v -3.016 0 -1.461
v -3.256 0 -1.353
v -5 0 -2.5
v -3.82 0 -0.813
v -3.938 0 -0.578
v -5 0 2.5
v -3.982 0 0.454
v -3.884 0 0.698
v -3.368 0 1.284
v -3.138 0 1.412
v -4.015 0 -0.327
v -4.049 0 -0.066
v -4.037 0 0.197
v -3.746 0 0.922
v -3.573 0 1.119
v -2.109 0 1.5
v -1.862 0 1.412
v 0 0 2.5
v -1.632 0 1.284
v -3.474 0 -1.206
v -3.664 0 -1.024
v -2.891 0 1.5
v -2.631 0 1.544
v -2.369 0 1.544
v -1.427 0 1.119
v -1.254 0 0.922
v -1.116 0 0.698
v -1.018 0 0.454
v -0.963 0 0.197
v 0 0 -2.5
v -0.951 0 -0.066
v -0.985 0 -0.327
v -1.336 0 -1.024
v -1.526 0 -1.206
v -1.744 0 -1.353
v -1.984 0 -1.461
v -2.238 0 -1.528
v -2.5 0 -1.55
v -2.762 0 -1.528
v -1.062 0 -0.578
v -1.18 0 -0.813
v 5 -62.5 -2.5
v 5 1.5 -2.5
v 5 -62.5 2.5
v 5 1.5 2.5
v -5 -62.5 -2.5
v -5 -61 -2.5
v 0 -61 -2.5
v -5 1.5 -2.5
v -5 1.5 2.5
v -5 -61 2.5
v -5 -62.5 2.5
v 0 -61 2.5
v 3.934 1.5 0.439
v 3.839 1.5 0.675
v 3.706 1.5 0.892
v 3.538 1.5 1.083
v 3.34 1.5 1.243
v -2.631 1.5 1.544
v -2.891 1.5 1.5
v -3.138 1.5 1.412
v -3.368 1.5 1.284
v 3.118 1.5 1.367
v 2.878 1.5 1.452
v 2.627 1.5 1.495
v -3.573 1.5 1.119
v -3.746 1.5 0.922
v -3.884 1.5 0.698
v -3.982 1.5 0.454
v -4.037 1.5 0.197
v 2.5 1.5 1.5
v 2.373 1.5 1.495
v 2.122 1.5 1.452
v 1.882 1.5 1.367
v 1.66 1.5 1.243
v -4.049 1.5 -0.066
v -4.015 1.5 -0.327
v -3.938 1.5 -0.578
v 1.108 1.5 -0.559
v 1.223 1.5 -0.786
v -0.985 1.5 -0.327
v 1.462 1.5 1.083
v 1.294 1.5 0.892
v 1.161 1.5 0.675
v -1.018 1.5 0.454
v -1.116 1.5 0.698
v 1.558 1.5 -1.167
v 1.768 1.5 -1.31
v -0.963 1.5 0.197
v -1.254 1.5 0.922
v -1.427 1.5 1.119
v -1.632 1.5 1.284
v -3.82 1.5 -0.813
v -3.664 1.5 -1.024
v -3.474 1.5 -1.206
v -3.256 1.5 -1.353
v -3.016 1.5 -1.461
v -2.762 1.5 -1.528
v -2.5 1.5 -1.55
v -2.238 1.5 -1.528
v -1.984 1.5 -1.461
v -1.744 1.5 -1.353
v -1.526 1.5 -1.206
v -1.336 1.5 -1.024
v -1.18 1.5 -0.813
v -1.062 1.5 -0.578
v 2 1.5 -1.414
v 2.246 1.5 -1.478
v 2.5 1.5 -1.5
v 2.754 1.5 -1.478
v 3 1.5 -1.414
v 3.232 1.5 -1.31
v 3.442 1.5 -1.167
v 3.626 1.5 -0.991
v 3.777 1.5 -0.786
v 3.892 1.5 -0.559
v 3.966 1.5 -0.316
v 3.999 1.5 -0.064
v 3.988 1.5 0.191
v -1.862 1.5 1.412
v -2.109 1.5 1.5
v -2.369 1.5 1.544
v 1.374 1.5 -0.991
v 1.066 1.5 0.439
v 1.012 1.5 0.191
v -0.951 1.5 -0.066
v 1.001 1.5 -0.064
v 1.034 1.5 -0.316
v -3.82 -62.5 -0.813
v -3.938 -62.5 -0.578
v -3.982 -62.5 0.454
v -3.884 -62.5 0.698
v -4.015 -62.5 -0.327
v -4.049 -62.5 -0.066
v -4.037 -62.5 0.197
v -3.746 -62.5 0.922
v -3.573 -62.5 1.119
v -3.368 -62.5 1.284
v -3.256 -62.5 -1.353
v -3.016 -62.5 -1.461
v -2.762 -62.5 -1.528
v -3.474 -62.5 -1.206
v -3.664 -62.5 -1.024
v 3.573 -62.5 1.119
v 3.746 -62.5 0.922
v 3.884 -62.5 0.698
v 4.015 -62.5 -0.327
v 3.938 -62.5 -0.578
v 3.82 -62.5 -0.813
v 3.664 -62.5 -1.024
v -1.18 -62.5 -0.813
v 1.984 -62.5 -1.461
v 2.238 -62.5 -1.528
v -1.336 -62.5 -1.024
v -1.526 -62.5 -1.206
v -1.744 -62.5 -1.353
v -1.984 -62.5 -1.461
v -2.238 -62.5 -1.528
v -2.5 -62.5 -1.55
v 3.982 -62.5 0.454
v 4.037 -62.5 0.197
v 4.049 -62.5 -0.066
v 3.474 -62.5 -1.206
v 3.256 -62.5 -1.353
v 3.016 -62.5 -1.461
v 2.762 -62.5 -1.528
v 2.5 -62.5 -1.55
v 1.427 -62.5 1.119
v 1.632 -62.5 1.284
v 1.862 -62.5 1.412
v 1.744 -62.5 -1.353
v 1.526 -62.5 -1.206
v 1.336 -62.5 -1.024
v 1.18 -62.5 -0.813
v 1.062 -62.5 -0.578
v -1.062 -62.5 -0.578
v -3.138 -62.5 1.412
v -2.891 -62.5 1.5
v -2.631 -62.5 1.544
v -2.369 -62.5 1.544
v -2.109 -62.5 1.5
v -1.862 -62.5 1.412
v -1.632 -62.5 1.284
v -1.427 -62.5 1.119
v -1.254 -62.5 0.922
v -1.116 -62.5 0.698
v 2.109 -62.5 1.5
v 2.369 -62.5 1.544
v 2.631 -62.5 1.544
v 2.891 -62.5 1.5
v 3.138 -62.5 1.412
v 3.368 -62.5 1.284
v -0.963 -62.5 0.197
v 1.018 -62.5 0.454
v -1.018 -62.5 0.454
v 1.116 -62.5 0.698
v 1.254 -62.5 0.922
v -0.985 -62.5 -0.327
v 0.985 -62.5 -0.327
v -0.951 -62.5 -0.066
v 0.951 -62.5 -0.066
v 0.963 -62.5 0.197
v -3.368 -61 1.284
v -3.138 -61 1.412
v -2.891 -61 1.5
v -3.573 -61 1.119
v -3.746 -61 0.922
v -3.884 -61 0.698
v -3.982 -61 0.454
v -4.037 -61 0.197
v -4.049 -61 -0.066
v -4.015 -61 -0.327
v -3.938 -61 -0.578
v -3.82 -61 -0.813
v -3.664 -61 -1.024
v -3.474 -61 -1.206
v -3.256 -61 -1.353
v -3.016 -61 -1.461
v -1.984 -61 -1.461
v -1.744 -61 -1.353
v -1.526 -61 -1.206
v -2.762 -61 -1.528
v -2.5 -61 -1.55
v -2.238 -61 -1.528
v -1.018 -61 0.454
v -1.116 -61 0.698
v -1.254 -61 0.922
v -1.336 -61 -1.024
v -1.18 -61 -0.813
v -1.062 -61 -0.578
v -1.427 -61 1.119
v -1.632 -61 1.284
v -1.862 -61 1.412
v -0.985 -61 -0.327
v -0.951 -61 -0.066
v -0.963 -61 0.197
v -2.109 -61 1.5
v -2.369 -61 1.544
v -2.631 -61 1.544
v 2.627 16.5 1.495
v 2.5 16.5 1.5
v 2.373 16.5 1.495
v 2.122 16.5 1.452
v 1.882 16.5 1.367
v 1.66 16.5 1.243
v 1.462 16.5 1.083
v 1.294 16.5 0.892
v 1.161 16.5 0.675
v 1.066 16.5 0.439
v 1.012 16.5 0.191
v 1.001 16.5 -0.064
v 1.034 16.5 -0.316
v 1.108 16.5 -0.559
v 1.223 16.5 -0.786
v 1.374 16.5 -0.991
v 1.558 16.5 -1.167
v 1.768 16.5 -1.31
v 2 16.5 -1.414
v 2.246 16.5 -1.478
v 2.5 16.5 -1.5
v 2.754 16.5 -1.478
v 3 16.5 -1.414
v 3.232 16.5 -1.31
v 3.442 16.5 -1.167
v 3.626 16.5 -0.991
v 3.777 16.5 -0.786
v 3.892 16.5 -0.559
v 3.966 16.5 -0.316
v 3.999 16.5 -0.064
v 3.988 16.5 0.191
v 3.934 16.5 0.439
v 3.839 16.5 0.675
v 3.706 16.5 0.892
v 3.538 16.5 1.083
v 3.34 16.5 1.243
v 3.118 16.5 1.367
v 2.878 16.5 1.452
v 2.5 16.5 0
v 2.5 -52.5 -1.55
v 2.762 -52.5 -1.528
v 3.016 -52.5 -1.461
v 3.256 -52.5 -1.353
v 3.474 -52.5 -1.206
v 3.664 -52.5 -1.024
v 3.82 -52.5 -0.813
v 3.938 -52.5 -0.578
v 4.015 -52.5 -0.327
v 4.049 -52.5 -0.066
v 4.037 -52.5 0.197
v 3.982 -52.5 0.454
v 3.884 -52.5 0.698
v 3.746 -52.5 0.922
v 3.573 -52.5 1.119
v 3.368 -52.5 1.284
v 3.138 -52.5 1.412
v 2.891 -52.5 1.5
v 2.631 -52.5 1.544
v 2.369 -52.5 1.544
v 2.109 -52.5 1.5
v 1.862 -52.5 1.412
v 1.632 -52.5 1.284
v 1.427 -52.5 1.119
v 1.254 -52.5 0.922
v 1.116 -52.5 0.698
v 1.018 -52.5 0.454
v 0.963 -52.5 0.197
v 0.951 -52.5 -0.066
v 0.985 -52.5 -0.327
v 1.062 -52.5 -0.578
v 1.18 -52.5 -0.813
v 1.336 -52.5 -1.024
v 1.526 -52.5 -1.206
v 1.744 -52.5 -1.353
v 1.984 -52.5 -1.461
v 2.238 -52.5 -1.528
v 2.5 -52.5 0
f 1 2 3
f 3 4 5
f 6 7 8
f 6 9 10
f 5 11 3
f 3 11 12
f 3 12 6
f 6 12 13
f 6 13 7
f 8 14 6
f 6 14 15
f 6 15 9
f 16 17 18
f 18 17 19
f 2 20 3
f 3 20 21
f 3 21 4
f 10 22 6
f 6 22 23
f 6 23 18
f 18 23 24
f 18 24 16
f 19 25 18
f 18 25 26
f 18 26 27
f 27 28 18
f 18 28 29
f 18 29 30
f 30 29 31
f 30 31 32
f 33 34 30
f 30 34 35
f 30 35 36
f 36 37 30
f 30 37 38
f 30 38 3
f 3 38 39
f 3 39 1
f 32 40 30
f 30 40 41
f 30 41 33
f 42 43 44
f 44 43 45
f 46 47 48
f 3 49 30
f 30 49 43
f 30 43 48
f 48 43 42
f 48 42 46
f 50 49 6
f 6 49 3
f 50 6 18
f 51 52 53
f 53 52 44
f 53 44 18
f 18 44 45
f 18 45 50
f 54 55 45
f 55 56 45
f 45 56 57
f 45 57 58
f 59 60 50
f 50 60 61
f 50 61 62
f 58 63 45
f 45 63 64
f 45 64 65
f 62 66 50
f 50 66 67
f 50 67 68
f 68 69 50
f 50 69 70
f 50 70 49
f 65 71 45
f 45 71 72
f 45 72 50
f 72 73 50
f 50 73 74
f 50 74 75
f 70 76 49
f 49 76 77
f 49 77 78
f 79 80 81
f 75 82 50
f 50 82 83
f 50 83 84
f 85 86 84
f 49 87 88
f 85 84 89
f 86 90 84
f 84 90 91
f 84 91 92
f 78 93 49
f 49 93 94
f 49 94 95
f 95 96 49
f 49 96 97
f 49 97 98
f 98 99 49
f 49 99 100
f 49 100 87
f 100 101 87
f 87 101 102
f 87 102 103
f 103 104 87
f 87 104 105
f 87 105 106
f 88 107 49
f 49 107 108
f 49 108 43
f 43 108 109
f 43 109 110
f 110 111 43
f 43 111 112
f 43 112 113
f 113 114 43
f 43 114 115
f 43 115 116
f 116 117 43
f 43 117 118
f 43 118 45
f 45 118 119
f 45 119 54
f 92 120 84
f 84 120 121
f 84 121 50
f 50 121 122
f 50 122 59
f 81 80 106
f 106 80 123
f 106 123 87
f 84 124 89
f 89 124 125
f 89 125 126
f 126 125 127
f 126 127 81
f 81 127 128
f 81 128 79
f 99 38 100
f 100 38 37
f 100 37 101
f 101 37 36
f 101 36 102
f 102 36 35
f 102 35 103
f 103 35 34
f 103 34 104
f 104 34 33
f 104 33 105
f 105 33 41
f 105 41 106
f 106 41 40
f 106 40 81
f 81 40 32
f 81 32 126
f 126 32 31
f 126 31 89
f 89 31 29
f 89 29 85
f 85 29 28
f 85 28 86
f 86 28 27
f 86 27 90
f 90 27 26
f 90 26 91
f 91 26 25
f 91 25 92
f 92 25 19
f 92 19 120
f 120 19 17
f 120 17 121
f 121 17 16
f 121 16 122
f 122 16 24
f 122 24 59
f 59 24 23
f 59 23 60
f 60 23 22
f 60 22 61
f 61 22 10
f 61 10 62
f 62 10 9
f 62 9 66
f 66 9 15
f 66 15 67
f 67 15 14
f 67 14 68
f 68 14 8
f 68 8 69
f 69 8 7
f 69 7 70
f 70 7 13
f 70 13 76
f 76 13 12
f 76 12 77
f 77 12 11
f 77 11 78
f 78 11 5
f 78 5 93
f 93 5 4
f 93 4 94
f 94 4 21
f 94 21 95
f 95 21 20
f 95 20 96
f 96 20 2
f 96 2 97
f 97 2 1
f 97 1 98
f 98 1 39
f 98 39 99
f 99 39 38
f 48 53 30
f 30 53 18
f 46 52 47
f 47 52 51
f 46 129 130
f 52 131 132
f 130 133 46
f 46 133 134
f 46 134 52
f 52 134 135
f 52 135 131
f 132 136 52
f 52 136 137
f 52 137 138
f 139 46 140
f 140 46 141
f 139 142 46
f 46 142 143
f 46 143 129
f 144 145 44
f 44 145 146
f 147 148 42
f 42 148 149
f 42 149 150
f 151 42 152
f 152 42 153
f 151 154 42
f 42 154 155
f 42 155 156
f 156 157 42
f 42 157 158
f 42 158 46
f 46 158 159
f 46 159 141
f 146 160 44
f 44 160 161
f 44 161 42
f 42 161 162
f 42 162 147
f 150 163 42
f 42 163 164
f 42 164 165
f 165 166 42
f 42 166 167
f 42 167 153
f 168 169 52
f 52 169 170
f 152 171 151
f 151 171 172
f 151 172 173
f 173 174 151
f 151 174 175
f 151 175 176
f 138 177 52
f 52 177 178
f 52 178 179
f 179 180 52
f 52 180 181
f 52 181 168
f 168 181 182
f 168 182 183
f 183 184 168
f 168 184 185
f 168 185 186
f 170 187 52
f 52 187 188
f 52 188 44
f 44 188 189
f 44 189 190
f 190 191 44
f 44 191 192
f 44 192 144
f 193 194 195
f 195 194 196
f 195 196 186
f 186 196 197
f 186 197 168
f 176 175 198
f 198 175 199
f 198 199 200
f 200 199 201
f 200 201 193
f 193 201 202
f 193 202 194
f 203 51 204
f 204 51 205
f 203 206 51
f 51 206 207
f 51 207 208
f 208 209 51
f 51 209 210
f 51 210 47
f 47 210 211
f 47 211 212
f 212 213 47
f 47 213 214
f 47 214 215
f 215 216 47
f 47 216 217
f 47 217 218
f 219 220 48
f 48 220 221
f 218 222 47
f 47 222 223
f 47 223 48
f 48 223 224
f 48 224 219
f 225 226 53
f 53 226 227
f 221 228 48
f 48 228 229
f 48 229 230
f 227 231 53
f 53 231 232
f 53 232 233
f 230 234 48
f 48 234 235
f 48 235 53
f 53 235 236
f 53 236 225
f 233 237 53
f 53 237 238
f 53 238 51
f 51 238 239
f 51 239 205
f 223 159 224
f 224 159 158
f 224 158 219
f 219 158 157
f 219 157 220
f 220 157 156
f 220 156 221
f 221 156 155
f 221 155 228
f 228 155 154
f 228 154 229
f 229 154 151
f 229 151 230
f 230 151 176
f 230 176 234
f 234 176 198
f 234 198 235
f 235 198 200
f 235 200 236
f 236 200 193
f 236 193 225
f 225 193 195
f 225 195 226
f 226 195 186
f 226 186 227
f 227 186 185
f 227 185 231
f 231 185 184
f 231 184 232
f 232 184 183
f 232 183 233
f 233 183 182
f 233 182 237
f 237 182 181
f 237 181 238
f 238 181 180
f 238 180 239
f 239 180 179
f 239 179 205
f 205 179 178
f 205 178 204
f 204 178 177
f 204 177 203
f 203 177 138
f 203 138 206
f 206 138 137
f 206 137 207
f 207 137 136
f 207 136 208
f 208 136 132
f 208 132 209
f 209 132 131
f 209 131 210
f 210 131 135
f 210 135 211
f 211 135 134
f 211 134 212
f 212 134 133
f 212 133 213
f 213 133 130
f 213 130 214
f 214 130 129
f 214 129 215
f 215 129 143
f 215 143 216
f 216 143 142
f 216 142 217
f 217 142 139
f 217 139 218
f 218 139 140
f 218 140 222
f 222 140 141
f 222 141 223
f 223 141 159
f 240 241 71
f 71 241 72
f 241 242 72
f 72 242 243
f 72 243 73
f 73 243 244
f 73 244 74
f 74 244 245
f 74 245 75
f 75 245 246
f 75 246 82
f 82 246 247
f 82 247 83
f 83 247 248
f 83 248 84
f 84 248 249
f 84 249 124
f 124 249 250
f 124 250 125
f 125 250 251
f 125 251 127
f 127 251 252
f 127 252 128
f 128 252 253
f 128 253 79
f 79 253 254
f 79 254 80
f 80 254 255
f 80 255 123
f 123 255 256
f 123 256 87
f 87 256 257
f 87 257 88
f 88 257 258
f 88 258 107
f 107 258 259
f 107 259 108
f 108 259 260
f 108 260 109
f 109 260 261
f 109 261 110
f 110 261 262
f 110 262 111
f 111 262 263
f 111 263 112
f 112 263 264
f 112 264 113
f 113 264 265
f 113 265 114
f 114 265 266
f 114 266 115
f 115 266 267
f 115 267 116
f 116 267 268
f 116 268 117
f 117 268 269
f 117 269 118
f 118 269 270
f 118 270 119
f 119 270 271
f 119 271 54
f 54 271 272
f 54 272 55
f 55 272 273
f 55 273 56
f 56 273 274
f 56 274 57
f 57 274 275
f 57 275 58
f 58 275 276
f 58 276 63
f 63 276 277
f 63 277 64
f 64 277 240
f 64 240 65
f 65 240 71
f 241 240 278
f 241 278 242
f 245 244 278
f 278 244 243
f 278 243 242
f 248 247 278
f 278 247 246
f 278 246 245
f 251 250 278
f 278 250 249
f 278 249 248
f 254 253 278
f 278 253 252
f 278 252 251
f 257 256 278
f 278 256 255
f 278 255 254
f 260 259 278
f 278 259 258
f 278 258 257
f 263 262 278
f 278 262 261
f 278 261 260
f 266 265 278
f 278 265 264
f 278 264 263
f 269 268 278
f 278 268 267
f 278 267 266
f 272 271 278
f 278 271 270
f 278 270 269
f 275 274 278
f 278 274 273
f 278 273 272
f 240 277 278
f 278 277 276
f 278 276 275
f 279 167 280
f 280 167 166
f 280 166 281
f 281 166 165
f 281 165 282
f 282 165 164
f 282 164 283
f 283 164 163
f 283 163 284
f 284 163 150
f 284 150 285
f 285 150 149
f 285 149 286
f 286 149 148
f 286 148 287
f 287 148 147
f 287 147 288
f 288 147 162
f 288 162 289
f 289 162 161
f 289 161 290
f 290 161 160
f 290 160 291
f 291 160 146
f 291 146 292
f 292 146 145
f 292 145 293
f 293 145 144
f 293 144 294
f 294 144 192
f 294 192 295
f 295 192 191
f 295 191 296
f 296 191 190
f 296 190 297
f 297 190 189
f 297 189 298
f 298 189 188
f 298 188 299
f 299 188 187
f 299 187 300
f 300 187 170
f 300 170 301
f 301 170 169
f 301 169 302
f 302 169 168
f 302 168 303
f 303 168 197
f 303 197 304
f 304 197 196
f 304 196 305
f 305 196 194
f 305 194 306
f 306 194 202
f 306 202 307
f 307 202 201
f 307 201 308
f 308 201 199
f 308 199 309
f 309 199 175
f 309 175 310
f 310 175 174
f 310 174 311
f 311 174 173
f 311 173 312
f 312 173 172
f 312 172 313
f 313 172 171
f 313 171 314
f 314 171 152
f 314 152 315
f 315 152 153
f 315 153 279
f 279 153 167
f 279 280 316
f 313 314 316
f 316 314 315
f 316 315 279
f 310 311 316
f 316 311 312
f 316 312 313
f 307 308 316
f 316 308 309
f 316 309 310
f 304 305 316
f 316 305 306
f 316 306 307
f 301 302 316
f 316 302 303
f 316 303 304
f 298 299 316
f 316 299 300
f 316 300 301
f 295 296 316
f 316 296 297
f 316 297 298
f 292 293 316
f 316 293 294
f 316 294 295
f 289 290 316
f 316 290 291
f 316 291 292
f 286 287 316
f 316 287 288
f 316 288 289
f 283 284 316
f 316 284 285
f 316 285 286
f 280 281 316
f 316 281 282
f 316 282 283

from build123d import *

# Parameters (mm, degrees)
SKETCH_2_W          = 10
SKETCH_2_H          = 5
EXTRUDE_1_DEPTH     = 1.5
SKETCH_3_R          = 1.55
CUT_EXTRUDE_1_DEPTH = 1.5
SKETCH_4_W          = 5
SKETCH_4_H          = 5
EXTRUDE_2_DEPTH     = 61
SKETCH_5_W          = 10
SKETCH_5_H          = 5
EXTRUDE_3_DEPTH     = 1.5
SKETCH_6_R          = 1.55
CUT_EXTRUDE_2_DEPTH = 1.5
SKETCH_7_R          = 1.5
EXTRUDE_4_DEPTH     = 15
SKETCH_11_R         = 1.55
CUT_EXTRUDE_3_DEPTH = 10


with BuildPart() as part:
    # 草图2 → 凸台-拉伸1 (new body)
    with BuildSketch(Plane(origin=(0, 0, 0), x_dir=(1, 0, 0), z_dir=(0, 1, 0))):
        Rectangle(SKETCH_2_W, SKETCH_2_H)
    extrude(amount=EXTRUDE_1_DEPTH)

    # 草图3 → 切除-拉伸1 (cut)
    with BuildSketch(Plane.XZ):
        with Locations(Location((-2.5, 0, 0), (0, 0, 270))):
            Circle(SKETCH_3_R)
    extrude(amount=-CUT_EXTRUDE_1_DEPTH, mode=Mode.SUBTRACT)

    # 草图4 → 凸台-拉伸2 (add)
    with BuildSketch(Plane.XZ):
        with Locations((2.5, 0)):
            Rectangle(SKETCH_4_W, SKETCH_4_H)
    extrude(amount=EXTRUDE_2_DEPTH)

    # 草图5 → 凸台-拉伸3 (add)
    with BuildSketch(Plane.XZ.offset(61)):
        Rectangle(SKETCH_5_W, SKETCH_5_H)
    extrude(amount=EXTRUDE_3_DEPTH)

    # 草图6 → 切除-拉伸2 (cut)
    with BuildSketch(Plane.XZ.offset(62.5)):
        with Locations(Location((-2.5, 0, 0), (0, 0, 270))):
            Circle(SKETCH_6_R)
    extrude(amount=-CUT_EXTRUDE_2_DEPTH, mode=Mode.SUBTRACT)

    # 草图7 → 凸台-拉伸4 (add)
    with BuildSketch(Plane(origin=(0, 1.5, 0), x_dir=(1, 0, 0), z_dir=(0, 1, 0))):
        with Locations(Location((2.5, 0, 0), (0, 0, 270))):
            Circle(SKETCH_7_R)
    extrude(amount=EXTRUDE_4_DEPTH)

    # 草图11 → 切除-拉伸3 (cut)
    with BuildSketch(Plane.XZ.offset(62.5)):
        with Locations(Location((2.5, 0, 0), (0, 0, 270))):
            Circle(SKETCH_11_R)
    extrude(amount=-CUT_EXTRUDE_3_DEPTH, mode=Mode.SUBTRACT)


solid = part.part
